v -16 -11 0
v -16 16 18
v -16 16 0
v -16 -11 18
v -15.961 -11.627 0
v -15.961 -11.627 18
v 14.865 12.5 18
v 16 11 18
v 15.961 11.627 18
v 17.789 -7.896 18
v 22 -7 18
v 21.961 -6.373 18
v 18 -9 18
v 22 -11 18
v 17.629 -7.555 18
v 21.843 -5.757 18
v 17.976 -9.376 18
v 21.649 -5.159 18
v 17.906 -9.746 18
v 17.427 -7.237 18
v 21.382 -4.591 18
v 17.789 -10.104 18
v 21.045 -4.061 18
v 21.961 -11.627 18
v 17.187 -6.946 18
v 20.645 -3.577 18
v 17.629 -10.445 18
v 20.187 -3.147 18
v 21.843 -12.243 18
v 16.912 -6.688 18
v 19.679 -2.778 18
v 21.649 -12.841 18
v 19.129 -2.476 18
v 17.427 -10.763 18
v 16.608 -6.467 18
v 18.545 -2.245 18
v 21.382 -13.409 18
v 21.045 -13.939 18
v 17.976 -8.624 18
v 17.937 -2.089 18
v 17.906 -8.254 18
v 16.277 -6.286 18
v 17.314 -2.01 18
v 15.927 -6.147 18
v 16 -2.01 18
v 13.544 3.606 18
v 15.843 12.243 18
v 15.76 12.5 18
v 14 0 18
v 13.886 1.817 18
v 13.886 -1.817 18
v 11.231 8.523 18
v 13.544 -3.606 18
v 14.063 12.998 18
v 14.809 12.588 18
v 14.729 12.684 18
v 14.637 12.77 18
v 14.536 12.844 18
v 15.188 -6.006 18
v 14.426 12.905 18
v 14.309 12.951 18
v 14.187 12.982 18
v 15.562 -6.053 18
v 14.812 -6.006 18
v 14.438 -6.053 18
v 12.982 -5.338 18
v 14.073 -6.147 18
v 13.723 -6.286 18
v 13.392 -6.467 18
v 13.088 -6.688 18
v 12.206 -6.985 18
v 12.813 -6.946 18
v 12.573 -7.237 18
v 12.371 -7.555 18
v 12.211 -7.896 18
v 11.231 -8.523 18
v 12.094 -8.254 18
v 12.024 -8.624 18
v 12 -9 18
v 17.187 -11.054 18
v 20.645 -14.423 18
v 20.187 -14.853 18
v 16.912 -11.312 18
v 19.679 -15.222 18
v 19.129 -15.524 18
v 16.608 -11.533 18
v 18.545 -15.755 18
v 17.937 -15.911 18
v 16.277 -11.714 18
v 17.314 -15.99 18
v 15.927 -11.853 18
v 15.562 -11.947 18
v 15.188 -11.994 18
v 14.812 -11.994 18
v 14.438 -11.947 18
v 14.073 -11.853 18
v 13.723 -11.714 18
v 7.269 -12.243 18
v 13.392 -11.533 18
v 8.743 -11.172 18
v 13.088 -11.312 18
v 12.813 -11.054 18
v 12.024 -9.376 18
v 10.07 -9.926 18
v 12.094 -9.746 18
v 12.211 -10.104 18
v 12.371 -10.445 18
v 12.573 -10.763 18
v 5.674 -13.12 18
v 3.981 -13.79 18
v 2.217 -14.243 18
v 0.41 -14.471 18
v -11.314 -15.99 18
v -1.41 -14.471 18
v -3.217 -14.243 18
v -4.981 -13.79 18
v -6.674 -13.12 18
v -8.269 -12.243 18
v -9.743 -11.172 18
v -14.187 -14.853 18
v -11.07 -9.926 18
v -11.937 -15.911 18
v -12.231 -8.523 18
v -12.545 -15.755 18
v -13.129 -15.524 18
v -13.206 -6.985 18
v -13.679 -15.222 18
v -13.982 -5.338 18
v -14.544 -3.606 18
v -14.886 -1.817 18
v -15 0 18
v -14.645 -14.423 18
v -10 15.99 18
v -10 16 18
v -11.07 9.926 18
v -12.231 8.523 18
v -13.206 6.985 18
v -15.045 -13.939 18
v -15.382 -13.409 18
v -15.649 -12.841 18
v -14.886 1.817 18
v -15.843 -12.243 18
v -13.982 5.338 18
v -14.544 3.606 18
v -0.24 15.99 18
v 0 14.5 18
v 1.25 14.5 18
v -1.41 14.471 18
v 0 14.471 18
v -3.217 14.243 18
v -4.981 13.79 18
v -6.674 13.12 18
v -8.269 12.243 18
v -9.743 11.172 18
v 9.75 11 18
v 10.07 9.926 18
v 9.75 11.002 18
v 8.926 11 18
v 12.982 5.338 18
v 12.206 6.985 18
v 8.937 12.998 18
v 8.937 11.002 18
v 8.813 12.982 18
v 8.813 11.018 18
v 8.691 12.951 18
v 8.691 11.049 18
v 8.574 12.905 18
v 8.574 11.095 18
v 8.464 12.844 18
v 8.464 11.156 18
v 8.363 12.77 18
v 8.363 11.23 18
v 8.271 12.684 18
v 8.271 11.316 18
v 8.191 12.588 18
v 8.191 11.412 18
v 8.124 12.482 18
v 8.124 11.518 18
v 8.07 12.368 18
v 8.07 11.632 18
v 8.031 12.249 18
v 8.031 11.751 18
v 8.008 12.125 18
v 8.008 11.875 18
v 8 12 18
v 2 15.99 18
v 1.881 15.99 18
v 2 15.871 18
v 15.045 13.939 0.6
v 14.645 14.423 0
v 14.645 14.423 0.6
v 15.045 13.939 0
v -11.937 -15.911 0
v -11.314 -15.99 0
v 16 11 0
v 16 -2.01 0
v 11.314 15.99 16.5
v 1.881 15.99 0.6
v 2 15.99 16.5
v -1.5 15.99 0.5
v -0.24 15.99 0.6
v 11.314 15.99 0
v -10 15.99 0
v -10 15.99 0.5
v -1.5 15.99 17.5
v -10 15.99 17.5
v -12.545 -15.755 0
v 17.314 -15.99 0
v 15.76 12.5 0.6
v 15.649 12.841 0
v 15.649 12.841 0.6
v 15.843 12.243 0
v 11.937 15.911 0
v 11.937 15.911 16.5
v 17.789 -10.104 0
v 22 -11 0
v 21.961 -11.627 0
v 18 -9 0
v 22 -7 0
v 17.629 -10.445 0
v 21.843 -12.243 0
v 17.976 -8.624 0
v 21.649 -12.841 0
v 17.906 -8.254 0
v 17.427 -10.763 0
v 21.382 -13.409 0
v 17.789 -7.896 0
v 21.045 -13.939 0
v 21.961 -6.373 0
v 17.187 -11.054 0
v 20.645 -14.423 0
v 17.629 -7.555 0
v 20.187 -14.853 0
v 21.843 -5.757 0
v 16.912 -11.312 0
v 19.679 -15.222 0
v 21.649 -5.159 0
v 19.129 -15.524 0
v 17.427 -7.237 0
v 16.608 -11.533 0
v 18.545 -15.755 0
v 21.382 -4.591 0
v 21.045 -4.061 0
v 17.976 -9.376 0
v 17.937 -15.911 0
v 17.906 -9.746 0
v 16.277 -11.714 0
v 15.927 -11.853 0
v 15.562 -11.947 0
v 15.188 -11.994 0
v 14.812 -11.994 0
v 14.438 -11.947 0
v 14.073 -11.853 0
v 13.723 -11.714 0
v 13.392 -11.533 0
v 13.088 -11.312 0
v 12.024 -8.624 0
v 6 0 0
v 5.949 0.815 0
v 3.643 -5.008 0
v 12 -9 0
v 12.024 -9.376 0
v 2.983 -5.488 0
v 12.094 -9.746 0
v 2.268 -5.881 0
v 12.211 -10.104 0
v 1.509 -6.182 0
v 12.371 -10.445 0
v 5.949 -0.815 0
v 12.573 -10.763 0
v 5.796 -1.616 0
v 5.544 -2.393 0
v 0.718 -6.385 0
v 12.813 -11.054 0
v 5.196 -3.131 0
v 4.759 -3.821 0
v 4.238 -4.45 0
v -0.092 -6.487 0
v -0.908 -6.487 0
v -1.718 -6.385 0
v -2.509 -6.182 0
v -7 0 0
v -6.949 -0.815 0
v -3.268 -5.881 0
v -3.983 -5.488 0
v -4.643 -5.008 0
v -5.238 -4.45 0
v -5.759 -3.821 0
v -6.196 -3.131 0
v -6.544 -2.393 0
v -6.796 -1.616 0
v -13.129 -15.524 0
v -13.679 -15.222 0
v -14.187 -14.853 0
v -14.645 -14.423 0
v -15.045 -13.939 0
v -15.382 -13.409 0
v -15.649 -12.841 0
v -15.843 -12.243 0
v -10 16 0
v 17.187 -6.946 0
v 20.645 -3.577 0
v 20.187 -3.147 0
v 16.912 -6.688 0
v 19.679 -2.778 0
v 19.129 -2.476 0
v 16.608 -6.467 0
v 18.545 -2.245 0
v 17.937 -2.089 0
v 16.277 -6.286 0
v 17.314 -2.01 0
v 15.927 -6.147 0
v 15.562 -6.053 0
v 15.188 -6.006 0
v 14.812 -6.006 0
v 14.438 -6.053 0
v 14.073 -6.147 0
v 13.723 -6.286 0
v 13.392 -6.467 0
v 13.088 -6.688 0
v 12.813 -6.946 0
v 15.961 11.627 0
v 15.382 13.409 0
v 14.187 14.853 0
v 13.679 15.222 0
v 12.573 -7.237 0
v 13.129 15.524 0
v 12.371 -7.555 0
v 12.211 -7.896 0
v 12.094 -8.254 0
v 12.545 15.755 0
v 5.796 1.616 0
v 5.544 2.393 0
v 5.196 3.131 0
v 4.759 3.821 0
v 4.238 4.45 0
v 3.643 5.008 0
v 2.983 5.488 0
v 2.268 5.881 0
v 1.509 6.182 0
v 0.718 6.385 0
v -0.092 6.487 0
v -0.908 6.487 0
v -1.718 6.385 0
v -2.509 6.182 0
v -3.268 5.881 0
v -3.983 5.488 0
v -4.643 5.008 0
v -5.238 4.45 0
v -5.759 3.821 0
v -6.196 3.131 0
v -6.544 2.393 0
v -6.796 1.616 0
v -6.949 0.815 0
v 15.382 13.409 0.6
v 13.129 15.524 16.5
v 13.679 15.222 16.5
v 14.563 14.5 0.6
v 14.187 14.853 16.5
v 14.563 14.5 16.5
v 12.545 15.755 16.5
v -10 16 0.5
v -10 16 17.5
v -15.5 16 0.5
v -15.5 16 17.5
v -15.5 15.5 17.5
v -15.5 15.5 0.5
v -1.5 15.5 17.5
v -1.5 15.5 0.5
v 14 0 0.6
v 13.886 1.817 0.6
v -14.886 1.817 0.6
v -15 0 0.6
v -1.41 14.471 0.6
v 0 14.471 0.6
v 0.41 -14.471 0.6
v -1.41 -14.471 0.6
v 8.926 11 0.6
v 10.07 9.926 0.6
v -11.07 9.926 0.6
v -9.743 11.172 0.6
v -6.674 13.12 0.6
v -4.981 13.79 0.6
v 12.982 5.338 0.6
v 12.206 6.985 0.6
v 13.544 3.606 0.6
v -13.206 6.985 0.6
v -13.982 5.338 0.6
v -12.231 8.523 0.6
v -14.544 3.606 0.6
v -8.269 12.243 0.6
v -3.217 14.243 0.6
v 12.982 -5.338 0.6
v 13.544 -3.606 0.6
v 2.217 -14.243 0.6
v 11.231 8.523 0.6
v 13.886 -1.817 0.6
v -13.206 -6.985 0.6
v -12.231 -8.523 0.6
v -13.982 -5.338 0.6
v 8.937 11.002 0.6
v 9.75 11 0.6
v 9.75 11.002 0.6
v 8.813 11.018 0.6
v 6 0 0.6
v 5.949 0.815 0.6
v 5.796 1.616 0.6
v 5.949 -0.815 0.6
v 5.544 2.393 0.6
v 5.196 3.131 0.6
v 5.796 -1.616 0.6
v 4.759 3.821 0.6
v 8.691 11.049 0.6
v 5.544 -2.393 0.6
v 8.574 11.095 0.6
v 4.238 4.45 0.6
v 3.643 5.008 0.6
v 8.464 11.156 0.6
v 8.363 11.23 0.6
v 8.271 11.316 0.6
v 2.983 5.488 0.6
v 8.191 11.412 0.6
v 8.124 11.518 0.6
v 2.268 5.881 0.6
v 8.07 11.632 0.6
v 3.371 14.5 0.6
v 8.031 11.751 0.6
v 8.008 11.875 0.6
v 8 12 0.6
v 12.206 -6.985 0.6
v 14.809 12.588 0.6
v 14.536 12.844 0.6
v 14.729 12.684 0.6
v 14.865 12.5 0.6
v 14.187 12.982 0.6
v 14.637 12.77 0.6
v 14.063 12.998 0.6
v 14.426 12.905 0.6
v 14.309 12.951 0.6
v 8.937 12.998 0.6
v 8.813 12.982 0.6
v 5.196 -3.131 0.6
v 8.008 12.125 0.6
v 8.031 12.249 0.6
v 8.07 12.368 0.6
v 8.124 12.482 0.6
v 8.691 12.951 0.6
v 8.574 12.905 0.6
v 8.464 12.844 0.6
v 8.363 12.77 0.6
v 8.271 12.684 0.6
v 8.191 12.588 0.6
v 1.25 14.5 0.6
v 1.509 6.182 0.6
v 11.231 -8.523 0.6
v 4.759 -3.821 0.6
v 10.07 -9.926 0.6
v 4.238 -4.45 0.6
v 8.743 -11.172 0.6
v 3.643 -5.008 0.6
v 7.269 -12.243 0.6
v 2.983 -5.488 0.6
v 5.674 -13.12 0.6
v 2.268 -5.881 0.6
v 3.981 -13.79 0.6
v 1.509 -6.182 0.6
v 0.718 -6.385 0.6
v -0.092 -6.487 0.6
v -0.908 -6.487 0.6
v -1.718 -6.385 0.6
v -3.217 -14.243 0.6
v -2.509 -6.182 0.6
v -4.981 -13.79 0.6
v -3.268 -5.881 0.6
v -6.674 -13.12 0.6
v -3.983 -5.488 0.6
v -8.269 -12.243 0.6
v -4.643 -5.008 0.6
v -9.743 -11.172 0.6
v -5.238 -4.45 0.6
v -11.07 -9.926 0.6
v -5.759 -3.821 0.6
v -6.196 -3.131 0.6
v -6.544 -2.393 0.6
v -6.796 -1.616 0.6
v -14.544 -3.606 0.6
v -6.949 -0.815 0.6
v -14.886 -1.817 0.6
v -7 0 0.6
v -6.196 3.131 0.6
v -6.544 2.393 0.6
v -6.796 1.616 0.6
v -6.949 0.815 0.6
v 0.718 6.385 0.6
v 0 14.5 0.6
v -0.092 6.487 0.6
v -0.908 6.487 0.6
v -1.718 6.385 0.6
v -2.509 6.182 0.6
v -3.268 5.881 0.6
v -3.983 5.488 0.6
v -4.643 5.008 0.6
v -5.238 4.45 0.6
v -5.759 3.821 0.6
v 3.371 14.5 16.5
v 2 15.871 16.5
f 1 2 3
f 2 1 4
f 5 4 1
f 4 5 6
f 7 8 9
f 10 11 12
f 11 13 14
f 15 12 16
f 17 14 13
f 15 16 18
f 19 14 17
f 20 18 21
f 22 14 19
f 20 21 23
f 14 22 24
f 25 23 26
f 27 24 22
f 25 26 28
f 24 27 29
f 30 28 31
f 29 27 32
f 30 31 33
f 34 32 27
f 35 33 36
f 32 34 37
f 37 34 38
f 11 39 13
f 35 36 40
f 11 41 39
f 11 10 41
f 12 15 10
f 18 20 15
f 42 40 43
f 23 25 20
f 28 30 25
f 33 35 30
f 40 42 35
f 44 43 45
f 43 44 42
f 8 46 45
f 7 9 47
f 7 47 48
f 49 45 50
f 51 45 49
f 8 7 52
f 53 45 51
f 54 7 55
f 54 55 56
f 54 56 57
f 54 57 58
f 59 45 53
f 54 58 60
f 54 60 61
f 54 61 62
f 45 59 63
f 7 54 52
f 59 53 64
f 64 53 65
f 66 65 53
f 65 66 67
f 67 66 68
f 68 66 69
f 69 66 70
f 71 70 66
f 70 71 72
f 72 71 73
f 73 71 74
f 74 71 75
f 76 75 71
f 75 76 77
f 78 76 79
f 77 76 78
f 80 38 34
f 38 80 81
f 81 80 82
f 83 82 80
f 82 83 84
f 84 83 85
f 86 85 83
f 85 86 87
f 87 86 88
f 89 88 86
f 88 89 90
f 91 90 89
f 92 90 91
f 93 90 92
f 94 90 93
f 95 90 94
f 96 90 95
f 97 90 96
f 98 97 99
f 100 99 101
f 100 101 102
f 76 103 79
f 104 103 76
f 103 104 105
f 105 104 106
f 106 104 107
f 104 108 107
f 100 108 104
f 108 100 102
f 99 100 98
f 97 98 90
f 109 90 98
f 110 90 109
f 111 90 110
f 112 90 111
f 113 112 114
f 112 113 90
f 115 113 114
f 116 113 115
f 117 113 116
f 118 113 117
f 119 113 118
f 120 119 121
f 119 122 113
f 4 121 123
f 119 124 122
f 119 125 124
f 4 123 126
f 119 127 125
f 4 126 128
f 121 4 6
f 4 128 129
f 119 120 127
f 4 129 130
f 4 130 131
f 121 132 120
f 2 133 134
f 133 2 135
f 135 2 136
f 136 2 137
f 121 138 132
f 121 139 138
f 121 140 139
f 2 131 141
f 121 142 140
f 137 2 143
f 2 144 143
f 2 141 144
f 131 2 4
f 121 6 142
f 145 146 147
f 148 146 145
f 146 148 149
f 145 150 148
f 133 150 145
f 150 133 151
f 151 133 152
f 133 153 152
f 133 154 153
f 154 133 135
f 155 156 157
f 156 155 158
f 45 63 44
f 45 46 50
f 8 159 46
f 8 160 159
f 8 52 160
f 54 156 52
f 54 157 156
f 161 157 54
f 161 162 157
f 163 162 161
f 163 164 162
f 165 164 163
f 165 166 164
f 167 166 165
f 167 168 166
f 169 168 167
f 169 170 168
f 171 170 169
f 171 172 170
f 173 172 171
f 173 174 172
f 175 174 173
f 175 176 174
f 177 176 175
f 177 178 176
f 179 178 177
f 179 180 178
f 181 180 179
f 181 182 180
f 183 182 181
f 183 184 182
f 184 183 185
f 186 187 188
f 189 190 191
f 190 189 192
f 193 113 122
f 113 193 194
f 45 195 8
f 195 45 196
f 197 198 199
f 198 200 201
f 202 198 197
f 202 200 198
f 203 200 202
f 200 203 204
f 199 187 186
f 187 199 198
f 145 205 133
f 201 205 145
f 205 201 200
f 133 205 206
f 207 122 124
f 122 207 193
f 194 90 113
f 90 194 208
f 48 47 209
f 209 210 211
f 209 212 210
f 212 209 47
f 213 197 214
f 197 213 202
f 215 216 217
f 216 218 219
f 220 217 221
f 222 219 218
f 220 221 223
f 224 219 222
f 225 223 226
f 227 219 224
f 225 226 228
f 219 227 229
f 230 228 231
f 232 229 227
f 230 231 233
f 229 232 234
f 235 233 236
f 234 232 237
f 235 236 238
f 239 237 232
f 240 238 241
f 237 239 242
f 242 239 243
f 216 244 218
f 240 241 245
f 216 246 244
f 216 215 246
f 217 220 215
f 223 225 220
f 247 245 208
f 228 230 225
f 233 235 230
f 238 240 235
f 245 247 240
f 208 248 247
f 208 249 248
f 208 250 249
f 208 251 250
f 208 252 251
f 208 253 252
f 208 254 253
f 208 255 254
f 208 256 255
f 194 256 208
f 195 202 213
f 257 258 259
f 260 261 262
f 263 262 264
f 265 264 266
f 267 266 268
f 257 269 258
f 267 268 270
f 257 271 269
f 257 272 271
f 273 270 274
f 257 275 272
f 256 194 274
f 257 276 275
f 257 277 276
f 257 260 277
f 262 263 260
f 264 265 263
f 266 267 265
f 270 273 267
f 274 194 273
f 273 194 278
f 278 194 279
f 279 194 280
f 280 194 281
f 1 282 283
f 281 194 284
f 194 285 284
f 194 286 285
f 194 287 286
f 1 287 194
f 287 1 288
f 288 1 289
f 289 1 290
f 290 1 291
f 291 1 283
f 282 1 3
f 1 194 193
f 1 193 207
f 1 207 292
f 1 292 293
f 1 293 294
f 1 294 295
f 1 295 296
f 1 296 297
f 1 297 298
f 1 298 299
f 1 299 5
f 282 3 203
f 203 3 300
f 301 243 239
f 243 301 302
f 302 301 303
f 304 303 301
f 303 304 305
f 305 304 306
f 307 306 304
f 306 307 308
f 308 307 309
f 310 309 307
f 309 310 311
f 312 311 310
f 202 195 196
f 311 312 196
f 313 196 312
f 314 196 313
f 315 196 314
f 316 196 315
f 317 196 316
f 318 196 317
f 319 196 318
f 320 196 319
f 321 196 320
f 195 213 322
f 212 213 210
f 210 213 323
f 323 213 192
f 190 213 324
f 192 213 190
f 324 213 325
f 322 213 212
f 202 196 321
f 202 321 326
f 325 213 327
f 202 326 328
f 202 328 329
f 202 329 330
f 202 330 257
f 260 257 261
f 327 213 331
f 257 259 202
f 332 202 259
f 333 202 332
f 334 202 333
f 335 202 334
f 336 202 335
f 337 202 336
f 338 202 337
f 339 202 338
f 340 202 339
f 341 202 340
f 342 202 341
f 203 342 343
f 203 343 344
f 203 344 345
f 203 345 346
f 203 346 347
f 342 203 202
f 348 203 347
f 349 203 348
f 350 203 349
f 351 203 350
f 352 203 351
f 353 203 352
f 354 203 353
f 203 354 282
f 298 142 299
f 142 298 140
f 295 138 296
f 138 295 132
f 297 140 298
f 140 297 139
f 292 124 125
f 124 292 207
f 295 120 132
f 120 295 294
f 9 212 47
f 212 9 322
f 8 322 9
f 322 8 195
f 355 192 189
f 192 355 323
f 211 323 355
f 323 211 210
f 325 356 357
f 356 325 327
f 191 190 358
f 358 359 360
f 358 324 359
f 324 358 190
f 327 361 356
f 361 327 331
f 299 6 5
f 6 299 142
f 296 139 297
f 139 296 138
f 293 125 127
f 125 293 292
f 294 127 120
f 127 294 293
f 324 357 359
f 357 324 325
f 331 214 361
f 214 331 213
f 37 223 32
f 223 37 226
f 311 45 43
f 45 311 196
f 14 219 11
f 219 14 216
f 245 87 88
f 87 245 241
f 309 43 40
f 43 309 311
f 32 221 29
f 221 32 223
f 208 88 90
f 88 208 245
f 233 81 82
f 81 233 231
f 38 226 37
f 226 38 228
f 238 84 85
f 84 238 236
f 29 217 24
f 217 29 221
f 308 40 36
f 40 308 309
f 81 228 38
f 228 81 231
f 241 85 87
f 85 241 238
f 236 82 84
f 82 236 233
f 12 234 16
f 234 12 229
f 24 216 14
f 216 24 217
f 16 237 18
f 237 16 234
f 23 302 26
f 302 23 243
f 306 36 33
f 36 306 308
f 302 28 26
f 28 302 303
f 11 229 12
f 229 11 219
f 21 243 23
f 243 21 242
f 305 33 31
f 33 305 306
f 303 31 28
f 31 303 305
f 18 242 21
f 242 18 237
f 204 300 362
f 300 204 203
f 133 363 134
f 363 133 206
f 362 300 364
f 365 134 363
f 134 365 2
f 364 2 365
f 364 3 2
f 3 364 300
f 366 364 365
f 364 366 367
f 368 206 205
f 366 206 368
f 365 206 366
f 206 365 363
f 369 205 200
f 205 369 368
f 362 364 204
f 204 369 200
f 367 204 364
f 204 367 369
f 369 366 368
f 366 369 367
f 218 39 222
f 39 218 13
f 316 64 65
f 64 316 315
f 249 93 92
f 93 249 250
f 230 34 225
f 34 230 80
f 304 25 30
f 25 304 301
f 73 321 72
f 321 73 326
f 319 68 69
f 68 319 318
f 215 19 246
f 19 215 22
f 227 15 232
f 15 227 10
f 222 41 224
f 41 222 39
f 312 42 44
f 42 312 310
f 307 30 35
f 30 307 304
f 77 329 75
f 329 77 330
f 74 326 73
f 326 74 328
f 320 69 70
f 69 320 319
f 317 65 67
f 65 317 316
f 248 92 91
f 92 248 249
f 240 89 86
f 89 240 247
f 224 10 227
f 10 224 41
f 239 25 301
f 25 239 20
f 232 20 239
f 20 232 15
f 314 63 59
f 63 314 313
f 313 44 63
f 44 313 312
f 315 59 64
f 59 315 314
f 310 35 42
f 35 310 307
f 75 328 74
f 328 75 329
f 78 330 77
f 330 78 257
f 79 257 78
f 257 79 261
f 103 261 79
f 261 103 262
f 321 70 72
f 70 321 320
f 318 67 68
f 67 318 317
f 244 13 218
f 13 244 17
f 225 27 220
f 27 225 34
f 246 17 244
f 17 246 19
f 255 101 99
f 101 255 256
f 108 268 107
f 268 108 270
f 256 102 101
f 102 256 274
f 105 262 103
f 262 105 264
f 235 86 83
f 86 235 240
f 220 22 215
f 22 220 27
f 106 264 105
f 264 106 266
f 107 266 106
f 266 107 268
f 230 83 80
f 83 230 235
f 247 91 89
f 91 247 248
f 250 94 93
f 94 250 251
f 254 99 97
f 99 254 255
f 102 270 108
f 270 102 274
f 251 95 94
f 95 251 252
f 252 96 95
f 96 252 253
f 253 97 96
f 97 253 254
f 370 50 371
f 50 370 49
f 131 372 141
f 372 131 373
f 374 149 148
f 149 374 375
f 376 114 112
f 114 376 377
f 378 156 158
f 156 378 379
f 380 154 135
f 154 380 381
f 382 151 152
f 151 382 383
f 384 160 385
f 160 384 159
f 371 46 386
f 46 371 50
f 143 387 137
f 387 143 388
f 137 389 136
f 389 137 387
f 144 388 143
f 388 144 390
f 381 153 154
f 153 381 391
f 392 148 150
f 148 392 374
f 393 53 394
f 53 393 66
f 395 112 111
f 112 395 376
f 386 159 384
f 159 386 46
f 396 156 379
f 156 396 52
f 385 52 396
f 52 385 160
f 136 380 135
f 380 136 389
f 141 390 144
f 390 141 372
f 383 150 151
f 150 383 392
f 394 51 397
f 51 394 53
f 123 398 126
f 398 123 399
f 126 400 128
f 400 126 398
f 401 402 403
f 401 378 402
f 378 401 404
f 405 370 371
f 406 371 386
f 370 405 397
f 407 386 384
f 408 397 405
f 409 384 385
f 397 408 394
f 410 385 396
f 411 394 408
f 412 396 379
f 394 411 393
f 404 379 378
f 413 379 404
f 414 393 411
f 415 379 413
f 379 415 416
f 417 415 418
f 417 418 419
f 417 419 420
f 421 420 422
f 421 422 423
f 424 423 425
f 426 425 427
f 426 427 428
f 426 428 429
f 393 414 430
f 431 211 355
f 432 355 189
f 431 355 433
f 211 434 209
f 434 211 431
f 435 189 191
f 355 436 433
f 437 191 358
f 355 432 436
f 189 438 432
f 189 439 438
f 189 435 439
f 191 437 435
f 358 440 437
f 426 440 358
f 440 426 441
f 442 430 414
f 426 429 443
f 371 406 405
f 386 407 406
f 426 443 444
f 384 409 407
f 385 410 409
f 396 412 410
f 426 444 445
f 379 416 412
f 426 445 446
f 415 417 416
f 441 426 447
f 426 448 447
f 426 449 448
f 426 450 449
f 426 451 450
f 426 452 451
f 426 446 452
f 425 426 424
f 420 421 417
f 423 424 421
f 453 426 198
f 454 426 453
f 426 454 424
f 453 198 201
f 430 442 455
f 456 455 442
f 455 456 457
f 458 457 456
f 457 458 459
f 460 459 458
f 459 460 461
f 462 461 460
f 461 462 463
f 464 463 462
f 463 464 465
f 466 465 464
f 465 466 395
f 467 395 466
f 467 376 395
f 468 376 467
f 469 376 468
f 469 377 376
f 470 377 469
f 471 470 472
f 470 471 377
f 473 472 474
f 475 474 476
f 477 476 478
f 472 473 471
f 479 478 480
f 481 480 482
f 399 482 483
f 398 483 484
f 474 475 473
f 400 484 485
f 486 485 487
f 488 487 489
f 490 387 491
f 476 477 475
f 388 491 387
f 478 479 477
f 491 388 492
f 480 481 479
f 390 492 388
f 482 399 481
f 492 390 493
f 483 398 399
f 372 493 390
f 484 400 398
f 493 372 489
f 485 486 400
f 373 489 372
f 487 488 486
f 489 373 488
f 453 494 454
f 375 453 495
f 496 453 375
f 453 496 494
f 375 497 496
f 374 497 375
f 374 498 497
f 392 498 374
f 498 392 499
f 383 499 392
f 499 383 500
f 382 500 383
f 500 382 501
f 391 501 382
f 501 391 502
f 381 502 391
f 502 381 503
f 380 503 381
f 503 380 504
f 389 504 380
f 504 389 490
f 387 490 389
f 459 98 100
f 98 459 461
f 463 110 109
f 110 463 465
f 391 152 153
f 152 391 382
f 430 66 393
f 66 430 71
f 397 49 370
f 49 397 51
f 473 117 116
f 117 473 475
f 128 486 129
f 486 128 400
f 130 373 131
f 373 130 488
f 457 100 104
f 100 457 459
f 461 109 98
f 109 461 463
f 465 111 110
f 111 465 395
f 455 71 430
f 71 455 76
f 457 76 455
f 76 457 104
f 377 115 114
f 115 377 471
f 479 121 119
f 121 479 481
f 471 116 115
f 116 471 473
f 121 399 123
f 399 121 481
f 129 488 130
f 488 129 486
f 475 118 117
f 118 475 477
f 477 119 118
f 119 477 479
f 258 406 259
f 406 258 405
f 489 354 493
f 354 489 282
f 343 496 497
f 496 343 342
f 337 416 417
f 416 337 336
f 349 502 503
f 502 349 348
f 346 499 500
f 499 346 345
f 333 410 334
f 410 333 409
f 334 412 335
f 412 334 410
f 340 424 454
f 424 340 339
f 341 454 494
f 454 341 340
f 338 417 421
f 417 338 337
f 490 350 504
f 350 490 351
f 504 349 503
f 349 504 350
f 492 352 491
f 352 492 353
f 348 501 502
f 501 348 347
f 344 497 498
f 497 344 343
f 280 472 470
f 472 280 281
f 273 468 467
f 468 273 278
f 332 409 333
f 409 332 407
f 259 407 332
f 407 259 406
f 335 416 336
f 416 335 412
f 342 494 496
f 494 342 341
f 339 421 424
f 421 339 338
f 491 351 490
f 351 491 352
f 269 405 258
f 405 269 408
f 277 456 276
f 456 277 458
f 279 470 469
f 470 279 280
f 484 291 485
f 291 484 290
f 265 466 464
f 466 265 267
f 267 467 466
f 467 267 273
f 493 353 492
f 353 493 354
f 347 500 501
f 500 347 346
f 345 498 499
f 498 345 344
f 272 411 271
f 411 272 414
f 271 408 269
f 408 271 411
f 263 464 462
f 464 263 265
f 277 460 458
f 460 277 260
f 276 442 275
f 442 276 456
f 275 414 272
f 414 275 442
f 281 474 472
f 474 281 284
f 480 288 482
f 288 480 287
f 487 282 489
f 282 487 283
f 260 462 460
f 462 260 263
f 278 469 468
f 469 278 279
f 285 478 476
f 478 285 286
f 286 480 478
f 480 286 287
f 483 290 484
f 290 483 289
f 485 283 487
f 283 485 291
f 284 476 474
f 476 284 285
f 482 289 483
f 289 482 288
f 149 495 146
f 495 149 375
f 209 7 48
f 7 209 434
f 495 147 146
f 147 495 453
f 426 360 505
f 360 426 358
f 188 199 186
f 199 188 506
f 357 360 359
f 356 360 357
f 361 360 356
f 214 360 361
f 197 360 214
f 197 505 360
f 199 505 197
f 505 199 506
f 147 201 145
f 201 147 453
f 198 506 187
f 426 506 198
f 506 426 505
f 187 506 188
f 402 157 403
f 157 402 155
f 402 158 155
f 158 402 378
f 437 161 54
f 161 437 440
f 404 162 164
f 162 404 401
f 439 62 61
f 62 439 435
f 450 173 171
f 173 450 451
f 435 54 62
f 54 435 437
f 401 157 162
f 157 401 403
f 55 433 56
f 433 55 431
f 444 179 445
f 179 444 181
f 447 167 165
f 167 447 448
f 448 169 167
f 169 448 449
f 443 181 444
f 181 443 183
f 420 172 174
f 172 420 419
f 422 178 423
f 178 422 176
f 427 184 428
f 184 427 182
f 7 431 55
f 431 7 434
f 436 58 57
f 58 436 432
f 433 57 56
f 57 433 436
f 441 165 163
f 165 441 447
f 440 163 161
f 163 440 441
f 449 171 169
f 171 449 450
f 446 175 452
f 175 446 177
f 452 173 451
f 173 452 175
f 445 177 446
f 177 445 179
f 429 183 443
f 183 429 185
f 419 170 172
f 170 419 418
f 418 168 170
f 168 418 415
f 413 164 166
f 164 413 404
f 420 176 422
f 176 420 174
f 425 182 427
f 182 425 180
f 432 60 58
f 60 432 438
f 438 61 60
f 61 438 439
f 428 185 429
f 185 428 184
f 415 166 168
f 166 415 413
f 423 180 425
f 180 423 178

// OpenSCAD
$fn = 50;


union() {
	difference() {
		union() {
			translate(v = [0, 0, 0]) {
				rotate(a = [0, 0, 0]) {
					hull() {
						translate(v = [-11.0000000000, 11.0000000000, 0]) {
							rotate(a = [0, 0, 0]) {
								translate(v = [0, 0, 0]) {
									rotate(a = [0, 0, 0]) {
										cylinder(h = 18, r = 5);
									}
								}
							}
						}
						translate(v = [11.0000000000, 11.0000000000, 0]) {
							rotate(a = [0, 0, 0]) {
								translate(v = [0, 0, 0]) {
									rotate(a = [0, 0, 0]) {
										cylinder(h = 18, r = 5);
									}
								}
							}
						}
						translate(v = [-11.0000000000, -11.0000000000, 0]) {
							rotate(a = [0, 0, 0]) {
								translate(v = [0, 0, 0]) {
									rotate(a = [0, 0, 0]) {
										cylinder(h = 18, r = 5);
									}
								}
							}
						}
						translate(v = [11.0000000000, -11.0000000000, 0]) {
							rotate(a = [0, 0, 0]) {
								translate(v = [0, 0, 0]) {
									rotate(a = [0, 0, 0]) {
										cylinder(h = 18, r = 5);
									}
								}
							}
						}
					}
				}
			}
			translate(v = [7.5000000000, -9.0000000000, 0]) {
				rotate(a = [0, 0, 0]) {
					hull() {
						translate(v = [-9.5000000000, 2.0000000000, 0]) {
							rotate(a = [0, 0, 0]) {
								translate(v = [0, 0, 0]) {
									rotate(a = [0, 0, 0]) {
										cylinder(h = 18, r = 5);
									}
								}
							}
						}
						translate(v = [9.5000000000, 2.0000000000, 0]) {
							rotate(a = [0, 0, 0]) {
								translate(v = [0, 0, 0]) {
									rotate(a = [0, 0, 0]) {
										cylinder(h = 18, r = 5);
									}
								}
							}
						}
						translate(v = [-9.5000000000, -2.0000000000, 0]) {
							rotate(a = [0, 0, 0]) {
								translate(v = [0, 0, 0]) {
									rotate(a = [0, 0, 0]) {
										cylinder(h = 18, r = 5);
									}
								}
							}
						}
						translate(v = [9.5000000000, -2.0000000000, 0]) {
							rotate(a = [0, 0, 0]) {
								translate(v = [0, 0, 0]) {
									rotate(a = [0, 0, 0]) {
										cylinder(h = 18, r = 5);
									}
								}
							}
						}
					}
				}
			}
			translate(v = [-16.0000000000, 10.0000000000, 0]) {
				rotate(a = [0, 0, 0]) {
					cube(size = [6, 6, 18]);
				}
			}
		}
		union() {
			translate(v = [-15.5000000000, 15.5000000000, 0.5000000000]) {
				rotate(a = [0, 0, 0]) {
					cube(size = [14, 0.5000000000, 17.0000000000]);
				}
			}
			translate(v = [15.0000000000, -9.0000000000, -125.0000000000]) {
				rotate(a = [0, 0, 0]) {
					cylinder(h = 250, r = 3.0000000000);
				}
			}
			translate(v = [-0.5000000000, 0.0000000000, 0.6000000000]) {
				rotate(a = [0, 0, 0]) {
					cylinder(h = 20.4000000000, r = 14.5000000000);
				}
			}
			translate(v = [-0.5000000000, 0.0000000000, -9.0000000000]) {
				rotate(a = [0, 0, 0]) {
					cylinder(h = 18, r = 6.5000000000);
				}
			}
			translate(v = [0.0000000000, 12.5000000000, 0.6000000000]) {
				rotate(a = [0, 0, 0]) {
					cube(size = [16.0000000000, 2, 20.4000000000]);
				}
			}
			translate(v = [2.0000000000, 12.5000000000, 16.5000000000]) {
				rotate(a = [0, 0, 0]) {
					cube(size = [14.0000000000, 5, 1.5000000000]);
				}
			}
			translate(v = [-3.0000000000, 18.7500000000, 0.6000000000]) {
				rotate(a = [0, 0, -45]) {
					cube(size = [10, 1.5000000000, 20.4000000000]);
				}
			}
			translate(v = [2.2500000000, 11.0000000000, 0.6000000000]) {
				rotate(a = [0, 0, 0]) {
					cube(size = [7.5000000000, 2, 17.4000000000]);
				}
			}
		}
	}
	union() {
		translate(v = [11.5000000000, 12, 0]) {
			rotate(a = [0, 0, 0]) {
				hull() {
					translate(v = [2.5000000000, 0, 0]) {
						rotate(a = [0, 0, 0]) {
							translate(v = [0, 0, 0]) {
								rotate(a = [0, 0, 0]) {
									cylinder(h = 18, r = 1.0000000000);
								}
							}
						}
					}
					translate(v = [-2.5000000000, 0, 0]) {
						rotate(a = [0, 0, 0]) {
							translate(v = [0, 0, 0]) {
								rotate(a = [0, 0, 0]) {
									cylinder(h = 18, r = 1.0000000000);
								}
							}
						}
					}
				}
			}
		}
	}
}
